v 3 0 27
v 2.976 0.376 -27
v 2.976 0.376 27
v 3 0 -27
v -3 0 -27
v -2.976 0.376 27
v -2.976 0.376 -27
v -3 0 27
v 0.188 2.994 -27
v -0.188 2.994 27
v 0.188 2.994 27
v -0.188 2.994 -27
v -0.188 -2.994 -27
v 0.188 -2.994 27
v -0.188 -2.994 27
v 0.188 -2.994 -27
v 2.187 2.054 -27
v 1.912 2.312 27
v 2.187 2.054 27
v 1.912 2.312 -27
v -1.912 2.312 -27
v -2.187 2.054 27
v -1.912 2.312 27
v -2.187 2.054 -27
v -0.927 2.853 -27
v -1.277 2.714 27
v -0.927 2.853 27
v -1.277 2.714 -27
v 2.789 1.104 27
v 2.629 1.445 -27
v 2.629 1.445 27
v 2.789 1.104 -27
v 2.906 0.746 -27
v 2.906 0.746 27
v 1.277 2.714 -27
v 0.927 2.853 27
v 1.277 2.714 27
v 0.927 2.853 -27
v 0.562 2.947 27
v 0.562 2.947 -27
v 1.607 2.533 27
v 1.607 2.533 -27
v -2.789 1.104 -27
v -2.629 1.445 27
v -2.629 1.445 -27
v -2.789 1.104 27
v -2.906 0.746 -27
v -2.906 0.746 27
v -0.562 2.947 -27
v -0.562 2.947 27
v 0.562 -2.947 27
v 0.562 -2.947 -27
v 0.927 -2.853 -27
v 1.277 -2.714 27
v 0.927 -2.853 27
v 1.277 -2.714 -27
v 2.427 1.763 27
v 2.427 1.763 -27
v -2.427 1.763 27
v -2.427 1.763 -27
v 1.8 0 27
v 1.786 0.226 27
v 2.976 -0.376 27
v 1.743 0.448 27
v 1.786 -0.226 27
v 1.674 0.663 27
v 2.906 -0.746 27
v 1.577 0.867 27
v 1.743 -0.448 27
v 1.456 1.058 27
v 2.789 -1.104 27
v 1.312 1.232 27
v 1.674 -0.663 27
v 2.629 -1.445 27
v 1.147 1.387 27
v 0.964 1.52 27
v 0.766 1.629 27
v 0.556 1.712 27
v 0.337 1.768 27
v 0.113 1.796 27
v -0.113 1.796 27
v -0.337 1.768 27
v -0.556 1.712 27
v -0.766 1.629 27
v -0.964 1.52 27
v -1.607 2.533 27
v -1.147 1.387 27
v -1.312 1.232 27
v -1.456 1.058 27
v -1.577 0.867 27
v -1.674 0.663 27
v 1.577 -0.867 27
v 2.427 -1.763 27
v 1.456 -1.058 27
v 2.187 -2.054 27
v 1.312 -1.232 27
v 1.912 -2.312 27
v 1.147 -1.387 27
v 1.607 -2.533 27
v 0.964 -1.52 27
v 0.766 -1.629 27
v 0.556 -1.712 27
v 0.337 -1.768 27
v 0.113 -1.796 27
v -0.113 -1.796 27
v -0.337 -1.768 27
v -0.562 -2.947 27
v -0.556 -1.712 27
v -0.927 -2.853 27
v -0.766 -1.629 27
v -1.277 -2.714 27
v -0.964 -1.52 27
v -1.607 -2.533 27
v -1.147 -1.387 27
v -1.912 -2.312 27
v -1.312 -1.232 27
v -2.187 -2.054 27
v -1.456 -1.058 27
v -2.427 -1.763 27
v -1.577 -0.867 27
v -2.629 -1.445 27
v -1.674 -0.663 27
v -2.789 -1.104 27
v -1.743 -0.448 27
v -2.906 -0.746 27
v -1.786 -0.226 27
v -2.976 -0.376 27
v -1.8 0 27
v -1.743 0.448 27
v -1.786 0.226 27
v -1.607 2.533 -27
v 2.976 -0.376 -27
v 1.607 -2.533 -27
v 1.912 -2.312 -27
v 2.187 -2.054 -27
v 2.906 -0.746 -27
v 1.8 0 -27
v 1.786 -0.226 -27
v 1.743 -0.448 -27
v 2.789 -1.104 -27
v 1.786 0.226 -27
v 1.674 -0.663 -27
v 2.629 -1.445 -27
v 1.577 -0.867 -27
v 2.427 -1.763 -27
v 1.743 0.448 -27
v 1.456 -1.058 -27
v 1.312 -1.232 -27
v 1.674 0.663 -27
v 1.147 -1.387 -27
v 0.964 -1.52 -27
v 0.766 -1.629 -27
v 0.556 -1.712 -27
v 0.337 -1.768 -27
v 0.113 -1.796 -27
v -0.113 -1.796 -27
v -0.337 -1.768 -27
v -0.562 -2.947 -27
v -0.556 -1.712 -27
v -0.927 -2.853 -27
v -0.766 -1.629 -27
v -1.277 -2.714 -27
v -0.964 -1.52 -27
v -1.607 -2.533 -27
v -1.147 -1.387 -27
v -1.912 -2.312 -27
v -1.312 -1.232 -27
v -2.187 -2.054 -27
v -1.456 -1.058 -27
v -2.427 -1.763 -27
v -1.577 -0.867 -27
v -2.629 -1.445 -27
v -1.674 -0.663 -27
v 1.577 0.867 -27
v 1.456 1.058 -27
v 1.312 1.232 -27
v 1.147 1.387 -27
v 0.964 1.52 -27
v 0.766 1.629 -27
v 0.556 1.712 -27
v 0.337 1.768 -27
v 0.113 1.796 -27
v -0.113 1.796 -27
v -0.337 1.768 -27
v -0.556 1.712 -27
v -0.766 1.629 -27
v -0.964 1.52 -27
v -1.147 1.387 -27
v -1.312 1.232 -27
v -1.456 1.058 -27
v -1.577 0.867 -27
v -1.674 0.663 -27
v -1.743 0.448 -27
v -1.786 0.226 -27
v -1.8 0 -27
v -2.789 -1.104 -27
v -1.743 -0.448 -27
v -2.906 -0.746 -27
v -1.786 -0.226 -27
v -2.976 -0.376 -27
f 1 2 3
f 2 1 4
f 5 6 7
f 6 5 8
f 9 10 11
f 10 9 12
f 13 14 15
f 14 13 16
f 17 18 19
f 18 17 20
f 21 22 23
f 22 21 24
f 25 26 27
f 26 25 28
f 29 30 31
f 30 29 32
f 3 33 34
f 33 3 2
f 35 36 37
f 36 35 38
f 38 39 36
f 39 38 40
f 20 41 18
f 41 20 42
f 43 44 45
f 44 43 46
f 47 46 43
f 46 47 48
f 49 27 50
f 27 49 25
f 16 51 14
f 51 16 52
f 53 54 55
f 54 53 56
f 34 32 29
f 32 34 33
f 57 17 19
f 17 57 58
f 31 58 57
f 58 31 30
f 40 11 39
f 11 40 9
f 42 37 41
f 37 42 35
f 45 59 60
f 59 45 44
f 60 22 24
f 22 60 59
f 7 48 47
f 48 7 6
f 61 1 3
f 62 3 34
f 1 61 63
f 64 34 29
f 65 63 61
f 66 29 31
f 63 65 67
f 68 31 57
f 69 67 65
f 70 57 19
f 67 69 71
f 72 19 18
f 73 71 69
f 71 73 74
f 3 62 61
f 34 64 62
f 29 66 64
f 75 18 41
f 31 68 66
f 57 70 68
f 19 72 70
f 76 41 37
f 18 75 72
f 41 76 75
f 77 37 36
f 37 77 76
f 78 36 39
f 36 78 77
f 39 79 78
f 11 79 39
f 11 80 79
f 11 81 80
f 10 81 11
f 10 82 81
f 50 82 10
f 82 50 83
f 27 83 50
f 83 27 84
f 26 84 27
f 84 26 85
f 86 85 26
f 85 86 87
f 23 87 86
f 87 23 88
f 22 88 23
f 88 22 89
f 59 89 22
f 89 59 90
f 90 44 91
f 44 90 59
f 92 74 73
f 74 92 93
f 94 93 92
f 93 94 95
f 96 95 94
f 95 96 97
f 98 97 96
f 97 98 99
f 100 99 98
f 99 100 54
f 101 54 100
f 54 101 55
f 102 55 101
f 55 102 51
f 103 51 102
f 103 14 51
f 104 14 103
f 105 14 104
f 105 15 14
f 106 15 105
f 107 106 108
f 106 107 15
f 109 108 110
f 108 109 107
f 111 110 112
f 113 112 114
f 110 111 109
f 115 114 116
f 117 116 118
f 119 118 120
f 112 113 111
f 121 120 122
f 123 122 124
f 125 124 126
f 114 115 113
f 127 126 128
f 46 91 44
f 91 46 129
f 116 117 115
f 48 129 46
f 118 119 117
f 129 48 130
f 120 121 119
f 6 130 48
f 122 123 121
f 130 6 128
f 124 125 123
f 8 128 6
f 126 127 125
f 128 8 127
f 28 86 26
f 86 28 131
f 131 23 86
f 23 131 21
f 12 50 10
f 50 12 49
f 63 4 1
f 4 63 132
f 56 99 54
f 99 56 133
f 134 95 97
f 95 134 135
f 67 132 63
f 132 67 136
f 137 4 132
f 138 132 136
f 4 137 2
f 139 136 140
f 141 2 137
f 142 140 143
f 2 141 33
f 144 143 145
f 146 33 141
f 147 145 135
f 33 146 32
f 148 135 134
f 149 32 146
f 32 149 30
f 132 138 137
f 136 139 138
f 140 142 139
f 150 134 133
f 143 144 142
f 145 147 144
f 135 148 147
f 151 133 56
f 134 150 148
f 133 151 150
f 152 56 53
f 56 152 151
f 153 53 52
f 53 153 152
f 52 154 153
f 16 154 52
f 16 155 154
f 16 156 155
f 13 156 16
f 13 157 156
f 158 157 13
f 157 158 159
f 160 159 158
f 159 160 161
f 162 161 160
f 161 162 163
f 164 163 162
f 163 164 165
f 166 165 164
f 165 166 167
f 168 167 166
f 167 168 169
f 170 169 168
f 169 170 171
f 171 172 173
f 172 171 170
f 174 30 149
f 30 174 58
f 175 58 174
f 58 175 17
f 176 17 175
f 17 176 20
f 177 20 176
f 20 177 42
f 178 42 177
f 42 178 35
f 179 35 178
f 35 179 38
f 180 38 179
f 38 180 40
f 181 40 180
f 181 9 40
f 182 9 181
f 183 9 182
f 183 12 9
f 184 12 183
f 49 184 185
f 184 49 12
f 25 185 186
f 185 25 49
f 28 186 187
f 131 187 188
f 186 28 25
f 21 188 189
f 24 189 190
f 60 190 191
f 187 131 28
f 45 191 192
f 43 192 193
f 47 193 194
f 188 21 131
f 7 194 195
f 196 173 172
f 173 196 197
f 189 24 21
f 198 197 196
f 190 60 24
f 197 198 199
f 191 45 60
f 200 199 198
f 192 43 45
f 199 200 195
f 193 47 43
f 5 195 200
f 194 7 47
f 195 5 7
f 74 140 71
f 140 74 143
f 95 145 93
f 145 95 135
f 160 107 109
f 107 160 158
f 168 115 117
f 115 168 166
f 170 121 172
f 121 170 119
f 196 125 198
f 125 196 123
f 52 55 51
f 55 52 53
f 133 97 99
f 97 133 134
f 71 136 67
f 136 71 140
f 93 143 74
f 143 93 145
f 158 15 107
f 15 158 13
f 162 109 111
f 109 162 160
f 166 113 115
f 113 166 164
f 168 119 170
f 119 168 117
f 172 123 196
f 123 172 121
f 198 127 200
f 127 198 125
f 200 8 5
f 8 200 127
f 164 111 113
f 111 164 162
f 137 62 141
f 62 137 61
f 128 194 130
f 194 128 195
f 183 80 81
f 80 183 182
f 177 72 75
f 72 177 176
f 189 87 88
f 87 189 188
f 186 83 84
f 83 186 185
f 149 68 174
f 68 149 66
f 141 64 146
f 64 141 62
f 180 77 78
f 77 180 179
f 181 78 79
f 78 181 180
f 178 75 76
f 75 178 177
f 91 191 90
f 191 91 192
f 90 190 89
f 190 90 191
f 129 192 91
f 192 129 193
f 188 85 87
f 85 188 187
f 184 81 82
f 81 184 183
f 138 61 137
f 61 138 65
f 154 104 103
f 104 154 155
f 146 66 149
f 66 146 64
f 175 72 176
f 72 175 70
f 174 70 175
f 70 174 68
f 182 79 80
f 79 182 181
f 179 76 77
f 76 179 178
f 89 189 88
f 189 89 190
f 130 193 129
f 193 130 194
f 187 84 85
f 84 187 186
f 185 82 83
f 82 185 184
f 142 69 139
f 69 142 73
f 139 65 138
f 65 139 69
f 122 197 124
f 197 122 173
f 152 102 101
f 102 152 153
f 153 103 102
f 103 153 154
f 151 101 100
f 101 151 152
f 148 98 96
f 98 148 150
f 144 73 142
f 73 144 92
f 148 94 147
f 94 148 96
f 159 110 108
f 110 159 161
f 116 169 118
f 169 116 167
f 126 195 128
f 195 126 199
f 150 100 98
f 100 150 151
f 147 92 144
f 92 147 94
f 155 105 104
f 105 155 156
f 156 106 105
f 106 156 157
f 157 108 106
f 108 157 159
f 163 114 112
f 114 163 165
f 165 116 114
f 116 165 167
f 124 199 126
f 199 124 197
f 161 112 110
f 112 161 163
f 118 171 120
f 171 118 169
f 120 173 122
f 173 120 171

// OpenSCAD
$fn = 50;


difference() {
	union() {
		translate(v = [0, 0, -27.0000000000]) {
			cylinder(h = 54, r = 3.0000000000);
		}
	}
	union() {
		translate(v = [0, 0, -100.0000000000]) {
			cylinder(h = 200, r = 1.8000000000);
		}
	}
}
